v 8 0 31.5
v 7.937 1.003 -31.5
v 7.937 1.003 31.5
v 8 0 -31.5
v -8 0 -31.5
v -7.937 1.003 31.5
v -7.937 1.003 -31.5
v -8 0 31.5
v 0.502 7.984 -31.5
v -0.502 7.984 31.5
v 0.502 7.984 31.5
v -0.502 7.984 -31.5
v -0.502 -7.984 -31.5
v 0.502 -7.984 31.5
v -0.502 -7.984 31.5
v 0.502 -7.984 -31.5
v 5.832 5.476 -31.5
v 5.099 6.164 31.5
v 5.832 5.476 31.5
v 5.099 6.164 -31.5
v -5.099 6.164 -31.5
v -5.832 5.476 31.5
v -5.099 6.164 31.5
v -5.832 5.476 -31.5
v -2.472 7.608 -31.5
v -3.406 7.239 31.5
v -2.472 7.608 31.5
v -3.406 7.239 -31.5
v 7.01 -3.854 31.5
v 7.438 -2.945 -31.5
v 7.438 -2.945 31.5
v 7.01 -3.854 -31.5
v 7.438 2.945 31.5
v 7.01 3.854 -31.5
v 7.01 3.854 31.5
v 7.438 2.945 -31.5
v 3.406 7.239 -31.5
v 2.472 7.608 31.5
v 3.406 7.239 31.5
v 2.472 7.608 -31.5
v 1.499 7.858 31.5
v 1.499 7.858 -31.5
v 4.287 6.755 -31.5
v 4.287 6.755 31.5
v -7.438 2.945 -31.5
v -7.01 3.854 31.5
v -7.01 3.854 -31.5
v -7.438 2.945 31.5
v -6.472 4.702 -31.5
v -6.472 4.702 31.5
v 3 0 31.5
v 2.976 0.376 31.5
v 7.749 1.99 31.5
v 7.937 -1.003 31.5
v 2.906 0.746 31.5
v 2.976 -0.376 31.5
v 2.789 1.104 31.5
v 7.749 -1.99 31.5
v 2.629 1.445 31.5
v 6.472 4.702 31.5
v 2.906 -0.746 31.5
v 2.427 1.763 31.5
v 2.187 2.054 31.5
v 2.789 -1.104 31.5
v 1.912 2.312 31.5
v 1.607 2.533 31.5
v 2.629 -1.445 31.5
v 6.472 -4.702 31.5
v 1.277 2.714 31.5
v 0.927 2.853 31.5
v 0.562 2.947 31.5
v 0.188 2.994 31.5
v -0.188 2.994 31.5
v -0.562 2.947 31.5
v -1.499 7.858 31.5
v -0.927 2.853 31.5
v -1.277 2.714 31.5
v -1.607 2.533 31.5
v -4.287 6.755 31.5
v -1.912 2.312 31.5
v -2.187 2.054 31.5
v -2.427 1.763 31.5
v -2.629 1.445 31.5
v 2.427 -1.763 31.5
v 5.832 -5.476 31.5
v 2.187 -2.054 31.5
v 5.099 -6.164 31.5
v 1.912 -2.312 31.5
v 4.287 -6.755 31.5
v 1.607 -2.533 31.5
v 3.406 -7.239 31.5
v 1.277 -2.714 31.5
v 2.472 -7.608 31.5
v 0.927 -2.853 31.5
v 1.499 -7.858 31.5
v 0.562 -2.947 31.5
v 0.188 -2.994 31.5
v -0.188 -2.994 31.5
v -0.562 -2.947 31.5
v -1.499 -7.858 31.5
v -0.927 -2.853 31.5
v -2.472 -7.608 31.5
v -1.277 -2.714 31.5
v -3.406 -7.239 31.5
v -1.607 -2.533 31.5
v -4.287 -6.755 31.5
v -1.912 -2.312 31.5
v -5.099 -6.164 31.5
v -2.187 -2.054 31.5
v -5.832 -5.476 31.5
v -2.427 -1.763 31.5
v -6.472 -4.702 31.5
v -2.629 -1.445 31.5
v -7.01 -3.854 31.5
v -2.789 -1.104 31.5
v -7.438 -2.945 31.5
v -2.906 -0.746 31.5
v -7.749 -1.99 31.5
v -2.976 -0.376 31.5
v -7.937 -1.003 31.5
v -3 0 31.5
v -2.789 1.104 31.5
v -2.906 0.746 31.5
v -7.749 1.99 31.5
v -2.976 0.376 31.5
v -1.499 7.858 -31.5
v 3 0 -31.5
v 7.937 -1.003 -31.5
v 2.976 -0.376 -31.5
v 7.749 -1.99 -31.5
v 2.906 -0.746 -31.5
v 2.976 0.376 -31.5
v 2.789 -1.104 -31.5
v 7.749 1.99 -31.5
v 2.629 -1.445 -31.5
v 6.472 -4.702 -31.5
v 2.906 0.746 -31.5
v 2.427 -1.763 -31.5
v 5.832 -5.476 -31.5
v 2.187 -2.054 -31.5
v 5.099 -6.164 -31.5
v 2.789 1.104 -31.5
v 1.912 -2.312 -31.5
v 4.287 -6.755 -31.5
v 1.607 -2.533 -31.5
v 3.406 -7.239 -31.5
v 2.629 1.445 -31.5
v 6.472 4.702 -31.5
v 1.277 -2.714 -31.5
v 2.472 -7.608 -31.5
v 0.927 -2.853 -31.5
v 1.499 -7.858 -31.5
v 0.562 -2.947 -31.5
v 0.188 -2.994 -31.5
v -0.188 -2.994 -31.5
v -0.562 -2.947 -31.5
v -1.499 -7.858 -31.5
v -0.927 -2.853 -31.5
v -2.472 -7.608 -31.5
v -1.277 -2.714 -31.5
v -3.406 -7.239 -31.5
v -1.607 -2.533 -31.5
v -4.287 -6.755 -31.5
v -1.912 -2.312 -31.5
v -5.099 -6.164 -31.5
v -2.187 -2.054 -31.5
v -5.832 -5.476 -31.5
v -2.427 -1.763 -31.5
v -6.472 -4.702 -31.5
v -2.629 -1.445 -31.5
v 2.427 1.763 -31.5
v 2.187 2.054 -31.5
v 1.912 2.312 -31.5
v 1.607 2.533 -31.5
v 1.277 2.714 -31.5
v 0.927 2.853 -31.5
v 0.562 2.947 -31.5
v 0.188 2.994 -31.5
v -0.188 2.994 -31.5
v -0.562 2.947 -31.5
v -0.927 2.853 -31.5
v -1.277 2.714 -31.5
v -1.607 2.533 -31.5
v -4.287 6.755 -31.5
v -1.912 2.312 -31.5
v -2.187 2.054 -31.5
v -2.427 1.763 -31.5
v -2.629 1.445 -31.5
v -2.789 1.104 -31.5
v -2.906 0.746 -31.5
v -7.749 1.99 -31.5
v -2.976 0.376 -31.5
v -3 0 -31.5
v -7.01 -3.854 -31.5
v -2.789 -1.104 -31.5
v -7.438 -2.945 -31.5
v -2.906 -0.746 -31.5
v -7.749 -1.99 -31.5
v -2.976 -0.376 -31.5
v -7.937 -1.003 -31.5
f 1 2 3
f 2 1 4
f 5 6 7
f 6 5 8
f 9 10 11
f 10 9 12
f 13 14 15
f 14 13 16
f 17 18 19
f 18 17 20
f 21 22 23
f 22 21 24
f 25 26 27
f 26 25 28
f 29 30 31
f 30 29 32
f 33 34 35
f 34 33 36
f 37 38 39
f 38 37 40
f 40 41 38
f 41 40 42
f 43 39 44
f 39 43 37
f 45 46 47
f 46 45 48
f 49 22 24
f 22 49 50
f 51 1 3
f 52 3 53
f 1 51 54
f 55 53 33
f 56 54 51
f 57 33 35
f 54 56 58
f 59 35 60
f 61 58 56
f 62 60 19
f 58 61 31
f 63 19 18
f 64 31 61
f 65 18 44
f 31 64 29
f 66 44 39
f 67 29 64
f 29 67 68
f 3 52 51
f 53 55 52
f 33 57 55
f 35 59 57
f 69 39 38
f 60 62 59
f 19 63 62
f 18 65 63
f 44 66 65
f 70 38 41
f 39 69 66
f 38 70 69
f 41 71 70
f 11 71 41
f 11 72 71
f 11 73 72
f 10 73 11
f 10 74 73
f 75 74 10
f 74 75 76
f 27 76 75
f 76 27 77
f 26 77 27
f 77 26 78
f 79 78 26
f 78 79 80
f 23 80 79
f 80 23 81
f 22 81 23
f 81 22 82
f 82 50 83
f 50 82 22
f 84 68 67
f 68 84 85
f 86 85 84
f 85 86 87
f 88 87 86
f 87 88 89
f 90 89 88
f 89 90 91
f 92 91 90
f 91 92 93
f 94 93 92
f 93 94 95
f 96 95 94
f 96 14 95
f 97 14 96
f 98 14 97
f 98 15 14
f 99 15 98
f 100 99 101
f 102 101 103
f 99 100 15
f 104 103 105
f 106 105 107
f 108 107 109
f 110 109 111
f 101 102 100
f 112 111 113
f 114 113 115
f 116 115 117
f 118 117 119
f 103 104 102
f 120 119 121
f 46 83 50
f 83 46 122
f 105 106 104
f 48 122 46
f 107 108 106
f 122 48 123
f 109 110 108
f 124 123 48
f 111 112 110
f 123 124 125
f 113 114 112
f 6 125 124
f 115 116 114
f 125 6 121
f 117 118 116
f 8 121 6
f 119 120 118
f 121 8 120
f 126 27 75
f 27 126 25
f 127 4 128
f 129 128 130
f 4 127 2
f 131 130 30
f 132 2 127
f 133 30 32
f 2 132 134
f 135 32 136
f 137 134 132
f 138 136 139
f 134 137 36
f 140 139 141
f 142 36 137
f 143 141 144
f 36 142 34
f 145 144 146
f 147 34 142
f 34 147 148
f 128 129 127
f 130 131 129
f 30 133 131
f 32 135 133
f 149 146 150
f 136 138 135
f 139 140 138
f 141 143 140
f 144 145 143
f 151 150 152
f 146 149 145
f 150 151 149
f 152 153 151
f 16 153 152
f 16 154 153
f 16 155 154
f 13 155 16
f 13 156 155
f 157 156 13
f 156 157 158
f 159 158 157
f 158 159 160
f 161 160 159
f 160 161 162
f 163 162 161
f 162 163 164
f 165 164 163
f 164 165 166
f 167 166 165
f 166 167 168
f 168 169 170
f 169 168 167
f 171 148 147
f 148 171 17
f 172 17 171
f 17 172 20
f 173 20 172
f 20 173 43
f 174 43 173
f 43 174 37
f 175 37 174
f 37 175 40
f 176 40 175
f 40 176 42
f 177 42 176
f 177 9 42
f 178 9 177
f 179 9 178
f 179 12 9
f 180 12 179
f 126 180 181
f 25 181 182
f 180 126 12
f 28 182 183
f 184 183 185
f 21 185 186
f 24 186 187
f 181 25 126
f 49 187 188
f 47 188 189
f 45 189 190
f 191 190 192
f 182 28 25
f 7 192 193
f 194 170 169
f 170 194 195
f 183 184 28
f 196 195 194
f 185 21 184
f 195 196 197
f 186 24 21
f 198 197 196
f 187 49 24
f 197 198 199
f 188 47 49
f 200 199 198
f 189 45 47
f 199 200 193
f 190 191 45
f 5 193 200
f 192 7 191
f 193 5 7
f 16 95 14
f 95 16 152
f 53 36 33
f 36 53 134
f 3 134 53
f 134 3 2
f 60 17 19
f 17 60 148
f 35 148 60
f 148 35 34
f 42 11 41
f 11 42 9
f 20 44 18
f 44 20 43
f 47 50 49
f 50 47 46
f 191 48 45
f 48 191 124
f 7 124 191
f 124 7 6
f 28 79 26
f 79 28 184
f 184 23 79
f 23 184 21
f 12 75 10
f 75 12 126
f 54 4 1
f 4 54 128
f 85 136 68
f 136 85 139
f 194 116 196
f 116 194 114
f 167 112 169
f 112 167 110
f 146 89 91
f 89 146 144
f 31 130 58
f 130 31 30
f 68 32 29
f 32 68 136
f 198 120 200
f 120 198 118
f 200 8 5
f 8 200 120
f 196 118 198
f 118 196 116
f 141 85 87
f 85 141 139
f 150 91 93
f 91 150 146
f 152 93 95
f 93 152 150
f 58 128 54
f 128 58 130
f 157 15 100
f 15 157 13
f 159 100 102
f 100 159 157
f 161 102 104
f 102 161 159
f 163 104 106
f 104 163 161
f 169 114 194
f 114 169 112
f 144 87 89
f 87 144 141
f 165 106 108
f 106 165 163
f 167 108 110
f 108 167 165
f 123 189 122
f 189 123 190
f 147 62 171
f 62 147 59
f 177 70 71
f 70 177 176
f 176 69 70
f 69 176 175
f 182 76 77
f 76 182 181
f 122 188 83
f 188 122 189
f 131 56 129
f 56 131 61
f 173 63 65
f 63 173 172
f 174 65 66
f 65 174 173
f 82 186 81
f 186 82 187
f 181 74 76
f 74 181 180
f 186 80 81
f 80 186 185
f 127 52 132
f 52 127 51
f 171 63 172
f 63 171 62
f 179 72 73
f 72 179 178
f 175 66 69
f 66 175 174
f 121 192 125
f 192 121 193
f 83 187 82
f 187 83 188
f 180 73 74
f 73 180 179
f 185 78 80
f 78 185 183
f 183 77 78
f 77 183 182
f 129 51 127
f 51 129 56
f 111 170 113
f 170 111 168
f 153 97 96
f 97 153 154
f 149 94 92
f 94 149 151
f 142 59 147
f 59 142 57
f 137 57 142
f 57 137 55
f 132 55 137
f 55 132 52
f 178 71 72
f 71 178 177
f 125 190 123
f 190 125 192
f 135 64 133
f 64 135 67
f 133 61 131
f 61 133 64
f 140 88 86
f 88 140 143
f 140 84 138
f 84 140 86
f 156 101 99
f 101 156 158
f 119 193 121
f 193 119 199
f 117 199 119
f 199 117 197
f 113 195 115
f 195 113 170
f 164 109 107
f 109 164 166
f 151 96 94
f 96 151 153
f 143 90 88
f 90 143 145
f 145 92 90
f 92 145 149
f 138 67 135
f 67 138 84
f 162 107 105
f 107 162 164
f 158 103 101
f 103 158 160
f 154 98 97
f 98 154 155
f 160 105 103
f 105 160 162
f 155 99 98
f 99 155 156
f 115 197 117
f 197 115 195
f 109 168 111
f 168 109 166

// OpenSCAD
$fn = 50;


difference() {
	union() {
		translate(v = [0, 0, -31.5000000000]) {
			cylinder(h = 63, r = 8.0000000000);
		}
	}
	union() {
		translate(v = [0, 0, -100.0000000000]) {
			cylinder(h = 200, r = 3.0000000000);
		}
	}
}
